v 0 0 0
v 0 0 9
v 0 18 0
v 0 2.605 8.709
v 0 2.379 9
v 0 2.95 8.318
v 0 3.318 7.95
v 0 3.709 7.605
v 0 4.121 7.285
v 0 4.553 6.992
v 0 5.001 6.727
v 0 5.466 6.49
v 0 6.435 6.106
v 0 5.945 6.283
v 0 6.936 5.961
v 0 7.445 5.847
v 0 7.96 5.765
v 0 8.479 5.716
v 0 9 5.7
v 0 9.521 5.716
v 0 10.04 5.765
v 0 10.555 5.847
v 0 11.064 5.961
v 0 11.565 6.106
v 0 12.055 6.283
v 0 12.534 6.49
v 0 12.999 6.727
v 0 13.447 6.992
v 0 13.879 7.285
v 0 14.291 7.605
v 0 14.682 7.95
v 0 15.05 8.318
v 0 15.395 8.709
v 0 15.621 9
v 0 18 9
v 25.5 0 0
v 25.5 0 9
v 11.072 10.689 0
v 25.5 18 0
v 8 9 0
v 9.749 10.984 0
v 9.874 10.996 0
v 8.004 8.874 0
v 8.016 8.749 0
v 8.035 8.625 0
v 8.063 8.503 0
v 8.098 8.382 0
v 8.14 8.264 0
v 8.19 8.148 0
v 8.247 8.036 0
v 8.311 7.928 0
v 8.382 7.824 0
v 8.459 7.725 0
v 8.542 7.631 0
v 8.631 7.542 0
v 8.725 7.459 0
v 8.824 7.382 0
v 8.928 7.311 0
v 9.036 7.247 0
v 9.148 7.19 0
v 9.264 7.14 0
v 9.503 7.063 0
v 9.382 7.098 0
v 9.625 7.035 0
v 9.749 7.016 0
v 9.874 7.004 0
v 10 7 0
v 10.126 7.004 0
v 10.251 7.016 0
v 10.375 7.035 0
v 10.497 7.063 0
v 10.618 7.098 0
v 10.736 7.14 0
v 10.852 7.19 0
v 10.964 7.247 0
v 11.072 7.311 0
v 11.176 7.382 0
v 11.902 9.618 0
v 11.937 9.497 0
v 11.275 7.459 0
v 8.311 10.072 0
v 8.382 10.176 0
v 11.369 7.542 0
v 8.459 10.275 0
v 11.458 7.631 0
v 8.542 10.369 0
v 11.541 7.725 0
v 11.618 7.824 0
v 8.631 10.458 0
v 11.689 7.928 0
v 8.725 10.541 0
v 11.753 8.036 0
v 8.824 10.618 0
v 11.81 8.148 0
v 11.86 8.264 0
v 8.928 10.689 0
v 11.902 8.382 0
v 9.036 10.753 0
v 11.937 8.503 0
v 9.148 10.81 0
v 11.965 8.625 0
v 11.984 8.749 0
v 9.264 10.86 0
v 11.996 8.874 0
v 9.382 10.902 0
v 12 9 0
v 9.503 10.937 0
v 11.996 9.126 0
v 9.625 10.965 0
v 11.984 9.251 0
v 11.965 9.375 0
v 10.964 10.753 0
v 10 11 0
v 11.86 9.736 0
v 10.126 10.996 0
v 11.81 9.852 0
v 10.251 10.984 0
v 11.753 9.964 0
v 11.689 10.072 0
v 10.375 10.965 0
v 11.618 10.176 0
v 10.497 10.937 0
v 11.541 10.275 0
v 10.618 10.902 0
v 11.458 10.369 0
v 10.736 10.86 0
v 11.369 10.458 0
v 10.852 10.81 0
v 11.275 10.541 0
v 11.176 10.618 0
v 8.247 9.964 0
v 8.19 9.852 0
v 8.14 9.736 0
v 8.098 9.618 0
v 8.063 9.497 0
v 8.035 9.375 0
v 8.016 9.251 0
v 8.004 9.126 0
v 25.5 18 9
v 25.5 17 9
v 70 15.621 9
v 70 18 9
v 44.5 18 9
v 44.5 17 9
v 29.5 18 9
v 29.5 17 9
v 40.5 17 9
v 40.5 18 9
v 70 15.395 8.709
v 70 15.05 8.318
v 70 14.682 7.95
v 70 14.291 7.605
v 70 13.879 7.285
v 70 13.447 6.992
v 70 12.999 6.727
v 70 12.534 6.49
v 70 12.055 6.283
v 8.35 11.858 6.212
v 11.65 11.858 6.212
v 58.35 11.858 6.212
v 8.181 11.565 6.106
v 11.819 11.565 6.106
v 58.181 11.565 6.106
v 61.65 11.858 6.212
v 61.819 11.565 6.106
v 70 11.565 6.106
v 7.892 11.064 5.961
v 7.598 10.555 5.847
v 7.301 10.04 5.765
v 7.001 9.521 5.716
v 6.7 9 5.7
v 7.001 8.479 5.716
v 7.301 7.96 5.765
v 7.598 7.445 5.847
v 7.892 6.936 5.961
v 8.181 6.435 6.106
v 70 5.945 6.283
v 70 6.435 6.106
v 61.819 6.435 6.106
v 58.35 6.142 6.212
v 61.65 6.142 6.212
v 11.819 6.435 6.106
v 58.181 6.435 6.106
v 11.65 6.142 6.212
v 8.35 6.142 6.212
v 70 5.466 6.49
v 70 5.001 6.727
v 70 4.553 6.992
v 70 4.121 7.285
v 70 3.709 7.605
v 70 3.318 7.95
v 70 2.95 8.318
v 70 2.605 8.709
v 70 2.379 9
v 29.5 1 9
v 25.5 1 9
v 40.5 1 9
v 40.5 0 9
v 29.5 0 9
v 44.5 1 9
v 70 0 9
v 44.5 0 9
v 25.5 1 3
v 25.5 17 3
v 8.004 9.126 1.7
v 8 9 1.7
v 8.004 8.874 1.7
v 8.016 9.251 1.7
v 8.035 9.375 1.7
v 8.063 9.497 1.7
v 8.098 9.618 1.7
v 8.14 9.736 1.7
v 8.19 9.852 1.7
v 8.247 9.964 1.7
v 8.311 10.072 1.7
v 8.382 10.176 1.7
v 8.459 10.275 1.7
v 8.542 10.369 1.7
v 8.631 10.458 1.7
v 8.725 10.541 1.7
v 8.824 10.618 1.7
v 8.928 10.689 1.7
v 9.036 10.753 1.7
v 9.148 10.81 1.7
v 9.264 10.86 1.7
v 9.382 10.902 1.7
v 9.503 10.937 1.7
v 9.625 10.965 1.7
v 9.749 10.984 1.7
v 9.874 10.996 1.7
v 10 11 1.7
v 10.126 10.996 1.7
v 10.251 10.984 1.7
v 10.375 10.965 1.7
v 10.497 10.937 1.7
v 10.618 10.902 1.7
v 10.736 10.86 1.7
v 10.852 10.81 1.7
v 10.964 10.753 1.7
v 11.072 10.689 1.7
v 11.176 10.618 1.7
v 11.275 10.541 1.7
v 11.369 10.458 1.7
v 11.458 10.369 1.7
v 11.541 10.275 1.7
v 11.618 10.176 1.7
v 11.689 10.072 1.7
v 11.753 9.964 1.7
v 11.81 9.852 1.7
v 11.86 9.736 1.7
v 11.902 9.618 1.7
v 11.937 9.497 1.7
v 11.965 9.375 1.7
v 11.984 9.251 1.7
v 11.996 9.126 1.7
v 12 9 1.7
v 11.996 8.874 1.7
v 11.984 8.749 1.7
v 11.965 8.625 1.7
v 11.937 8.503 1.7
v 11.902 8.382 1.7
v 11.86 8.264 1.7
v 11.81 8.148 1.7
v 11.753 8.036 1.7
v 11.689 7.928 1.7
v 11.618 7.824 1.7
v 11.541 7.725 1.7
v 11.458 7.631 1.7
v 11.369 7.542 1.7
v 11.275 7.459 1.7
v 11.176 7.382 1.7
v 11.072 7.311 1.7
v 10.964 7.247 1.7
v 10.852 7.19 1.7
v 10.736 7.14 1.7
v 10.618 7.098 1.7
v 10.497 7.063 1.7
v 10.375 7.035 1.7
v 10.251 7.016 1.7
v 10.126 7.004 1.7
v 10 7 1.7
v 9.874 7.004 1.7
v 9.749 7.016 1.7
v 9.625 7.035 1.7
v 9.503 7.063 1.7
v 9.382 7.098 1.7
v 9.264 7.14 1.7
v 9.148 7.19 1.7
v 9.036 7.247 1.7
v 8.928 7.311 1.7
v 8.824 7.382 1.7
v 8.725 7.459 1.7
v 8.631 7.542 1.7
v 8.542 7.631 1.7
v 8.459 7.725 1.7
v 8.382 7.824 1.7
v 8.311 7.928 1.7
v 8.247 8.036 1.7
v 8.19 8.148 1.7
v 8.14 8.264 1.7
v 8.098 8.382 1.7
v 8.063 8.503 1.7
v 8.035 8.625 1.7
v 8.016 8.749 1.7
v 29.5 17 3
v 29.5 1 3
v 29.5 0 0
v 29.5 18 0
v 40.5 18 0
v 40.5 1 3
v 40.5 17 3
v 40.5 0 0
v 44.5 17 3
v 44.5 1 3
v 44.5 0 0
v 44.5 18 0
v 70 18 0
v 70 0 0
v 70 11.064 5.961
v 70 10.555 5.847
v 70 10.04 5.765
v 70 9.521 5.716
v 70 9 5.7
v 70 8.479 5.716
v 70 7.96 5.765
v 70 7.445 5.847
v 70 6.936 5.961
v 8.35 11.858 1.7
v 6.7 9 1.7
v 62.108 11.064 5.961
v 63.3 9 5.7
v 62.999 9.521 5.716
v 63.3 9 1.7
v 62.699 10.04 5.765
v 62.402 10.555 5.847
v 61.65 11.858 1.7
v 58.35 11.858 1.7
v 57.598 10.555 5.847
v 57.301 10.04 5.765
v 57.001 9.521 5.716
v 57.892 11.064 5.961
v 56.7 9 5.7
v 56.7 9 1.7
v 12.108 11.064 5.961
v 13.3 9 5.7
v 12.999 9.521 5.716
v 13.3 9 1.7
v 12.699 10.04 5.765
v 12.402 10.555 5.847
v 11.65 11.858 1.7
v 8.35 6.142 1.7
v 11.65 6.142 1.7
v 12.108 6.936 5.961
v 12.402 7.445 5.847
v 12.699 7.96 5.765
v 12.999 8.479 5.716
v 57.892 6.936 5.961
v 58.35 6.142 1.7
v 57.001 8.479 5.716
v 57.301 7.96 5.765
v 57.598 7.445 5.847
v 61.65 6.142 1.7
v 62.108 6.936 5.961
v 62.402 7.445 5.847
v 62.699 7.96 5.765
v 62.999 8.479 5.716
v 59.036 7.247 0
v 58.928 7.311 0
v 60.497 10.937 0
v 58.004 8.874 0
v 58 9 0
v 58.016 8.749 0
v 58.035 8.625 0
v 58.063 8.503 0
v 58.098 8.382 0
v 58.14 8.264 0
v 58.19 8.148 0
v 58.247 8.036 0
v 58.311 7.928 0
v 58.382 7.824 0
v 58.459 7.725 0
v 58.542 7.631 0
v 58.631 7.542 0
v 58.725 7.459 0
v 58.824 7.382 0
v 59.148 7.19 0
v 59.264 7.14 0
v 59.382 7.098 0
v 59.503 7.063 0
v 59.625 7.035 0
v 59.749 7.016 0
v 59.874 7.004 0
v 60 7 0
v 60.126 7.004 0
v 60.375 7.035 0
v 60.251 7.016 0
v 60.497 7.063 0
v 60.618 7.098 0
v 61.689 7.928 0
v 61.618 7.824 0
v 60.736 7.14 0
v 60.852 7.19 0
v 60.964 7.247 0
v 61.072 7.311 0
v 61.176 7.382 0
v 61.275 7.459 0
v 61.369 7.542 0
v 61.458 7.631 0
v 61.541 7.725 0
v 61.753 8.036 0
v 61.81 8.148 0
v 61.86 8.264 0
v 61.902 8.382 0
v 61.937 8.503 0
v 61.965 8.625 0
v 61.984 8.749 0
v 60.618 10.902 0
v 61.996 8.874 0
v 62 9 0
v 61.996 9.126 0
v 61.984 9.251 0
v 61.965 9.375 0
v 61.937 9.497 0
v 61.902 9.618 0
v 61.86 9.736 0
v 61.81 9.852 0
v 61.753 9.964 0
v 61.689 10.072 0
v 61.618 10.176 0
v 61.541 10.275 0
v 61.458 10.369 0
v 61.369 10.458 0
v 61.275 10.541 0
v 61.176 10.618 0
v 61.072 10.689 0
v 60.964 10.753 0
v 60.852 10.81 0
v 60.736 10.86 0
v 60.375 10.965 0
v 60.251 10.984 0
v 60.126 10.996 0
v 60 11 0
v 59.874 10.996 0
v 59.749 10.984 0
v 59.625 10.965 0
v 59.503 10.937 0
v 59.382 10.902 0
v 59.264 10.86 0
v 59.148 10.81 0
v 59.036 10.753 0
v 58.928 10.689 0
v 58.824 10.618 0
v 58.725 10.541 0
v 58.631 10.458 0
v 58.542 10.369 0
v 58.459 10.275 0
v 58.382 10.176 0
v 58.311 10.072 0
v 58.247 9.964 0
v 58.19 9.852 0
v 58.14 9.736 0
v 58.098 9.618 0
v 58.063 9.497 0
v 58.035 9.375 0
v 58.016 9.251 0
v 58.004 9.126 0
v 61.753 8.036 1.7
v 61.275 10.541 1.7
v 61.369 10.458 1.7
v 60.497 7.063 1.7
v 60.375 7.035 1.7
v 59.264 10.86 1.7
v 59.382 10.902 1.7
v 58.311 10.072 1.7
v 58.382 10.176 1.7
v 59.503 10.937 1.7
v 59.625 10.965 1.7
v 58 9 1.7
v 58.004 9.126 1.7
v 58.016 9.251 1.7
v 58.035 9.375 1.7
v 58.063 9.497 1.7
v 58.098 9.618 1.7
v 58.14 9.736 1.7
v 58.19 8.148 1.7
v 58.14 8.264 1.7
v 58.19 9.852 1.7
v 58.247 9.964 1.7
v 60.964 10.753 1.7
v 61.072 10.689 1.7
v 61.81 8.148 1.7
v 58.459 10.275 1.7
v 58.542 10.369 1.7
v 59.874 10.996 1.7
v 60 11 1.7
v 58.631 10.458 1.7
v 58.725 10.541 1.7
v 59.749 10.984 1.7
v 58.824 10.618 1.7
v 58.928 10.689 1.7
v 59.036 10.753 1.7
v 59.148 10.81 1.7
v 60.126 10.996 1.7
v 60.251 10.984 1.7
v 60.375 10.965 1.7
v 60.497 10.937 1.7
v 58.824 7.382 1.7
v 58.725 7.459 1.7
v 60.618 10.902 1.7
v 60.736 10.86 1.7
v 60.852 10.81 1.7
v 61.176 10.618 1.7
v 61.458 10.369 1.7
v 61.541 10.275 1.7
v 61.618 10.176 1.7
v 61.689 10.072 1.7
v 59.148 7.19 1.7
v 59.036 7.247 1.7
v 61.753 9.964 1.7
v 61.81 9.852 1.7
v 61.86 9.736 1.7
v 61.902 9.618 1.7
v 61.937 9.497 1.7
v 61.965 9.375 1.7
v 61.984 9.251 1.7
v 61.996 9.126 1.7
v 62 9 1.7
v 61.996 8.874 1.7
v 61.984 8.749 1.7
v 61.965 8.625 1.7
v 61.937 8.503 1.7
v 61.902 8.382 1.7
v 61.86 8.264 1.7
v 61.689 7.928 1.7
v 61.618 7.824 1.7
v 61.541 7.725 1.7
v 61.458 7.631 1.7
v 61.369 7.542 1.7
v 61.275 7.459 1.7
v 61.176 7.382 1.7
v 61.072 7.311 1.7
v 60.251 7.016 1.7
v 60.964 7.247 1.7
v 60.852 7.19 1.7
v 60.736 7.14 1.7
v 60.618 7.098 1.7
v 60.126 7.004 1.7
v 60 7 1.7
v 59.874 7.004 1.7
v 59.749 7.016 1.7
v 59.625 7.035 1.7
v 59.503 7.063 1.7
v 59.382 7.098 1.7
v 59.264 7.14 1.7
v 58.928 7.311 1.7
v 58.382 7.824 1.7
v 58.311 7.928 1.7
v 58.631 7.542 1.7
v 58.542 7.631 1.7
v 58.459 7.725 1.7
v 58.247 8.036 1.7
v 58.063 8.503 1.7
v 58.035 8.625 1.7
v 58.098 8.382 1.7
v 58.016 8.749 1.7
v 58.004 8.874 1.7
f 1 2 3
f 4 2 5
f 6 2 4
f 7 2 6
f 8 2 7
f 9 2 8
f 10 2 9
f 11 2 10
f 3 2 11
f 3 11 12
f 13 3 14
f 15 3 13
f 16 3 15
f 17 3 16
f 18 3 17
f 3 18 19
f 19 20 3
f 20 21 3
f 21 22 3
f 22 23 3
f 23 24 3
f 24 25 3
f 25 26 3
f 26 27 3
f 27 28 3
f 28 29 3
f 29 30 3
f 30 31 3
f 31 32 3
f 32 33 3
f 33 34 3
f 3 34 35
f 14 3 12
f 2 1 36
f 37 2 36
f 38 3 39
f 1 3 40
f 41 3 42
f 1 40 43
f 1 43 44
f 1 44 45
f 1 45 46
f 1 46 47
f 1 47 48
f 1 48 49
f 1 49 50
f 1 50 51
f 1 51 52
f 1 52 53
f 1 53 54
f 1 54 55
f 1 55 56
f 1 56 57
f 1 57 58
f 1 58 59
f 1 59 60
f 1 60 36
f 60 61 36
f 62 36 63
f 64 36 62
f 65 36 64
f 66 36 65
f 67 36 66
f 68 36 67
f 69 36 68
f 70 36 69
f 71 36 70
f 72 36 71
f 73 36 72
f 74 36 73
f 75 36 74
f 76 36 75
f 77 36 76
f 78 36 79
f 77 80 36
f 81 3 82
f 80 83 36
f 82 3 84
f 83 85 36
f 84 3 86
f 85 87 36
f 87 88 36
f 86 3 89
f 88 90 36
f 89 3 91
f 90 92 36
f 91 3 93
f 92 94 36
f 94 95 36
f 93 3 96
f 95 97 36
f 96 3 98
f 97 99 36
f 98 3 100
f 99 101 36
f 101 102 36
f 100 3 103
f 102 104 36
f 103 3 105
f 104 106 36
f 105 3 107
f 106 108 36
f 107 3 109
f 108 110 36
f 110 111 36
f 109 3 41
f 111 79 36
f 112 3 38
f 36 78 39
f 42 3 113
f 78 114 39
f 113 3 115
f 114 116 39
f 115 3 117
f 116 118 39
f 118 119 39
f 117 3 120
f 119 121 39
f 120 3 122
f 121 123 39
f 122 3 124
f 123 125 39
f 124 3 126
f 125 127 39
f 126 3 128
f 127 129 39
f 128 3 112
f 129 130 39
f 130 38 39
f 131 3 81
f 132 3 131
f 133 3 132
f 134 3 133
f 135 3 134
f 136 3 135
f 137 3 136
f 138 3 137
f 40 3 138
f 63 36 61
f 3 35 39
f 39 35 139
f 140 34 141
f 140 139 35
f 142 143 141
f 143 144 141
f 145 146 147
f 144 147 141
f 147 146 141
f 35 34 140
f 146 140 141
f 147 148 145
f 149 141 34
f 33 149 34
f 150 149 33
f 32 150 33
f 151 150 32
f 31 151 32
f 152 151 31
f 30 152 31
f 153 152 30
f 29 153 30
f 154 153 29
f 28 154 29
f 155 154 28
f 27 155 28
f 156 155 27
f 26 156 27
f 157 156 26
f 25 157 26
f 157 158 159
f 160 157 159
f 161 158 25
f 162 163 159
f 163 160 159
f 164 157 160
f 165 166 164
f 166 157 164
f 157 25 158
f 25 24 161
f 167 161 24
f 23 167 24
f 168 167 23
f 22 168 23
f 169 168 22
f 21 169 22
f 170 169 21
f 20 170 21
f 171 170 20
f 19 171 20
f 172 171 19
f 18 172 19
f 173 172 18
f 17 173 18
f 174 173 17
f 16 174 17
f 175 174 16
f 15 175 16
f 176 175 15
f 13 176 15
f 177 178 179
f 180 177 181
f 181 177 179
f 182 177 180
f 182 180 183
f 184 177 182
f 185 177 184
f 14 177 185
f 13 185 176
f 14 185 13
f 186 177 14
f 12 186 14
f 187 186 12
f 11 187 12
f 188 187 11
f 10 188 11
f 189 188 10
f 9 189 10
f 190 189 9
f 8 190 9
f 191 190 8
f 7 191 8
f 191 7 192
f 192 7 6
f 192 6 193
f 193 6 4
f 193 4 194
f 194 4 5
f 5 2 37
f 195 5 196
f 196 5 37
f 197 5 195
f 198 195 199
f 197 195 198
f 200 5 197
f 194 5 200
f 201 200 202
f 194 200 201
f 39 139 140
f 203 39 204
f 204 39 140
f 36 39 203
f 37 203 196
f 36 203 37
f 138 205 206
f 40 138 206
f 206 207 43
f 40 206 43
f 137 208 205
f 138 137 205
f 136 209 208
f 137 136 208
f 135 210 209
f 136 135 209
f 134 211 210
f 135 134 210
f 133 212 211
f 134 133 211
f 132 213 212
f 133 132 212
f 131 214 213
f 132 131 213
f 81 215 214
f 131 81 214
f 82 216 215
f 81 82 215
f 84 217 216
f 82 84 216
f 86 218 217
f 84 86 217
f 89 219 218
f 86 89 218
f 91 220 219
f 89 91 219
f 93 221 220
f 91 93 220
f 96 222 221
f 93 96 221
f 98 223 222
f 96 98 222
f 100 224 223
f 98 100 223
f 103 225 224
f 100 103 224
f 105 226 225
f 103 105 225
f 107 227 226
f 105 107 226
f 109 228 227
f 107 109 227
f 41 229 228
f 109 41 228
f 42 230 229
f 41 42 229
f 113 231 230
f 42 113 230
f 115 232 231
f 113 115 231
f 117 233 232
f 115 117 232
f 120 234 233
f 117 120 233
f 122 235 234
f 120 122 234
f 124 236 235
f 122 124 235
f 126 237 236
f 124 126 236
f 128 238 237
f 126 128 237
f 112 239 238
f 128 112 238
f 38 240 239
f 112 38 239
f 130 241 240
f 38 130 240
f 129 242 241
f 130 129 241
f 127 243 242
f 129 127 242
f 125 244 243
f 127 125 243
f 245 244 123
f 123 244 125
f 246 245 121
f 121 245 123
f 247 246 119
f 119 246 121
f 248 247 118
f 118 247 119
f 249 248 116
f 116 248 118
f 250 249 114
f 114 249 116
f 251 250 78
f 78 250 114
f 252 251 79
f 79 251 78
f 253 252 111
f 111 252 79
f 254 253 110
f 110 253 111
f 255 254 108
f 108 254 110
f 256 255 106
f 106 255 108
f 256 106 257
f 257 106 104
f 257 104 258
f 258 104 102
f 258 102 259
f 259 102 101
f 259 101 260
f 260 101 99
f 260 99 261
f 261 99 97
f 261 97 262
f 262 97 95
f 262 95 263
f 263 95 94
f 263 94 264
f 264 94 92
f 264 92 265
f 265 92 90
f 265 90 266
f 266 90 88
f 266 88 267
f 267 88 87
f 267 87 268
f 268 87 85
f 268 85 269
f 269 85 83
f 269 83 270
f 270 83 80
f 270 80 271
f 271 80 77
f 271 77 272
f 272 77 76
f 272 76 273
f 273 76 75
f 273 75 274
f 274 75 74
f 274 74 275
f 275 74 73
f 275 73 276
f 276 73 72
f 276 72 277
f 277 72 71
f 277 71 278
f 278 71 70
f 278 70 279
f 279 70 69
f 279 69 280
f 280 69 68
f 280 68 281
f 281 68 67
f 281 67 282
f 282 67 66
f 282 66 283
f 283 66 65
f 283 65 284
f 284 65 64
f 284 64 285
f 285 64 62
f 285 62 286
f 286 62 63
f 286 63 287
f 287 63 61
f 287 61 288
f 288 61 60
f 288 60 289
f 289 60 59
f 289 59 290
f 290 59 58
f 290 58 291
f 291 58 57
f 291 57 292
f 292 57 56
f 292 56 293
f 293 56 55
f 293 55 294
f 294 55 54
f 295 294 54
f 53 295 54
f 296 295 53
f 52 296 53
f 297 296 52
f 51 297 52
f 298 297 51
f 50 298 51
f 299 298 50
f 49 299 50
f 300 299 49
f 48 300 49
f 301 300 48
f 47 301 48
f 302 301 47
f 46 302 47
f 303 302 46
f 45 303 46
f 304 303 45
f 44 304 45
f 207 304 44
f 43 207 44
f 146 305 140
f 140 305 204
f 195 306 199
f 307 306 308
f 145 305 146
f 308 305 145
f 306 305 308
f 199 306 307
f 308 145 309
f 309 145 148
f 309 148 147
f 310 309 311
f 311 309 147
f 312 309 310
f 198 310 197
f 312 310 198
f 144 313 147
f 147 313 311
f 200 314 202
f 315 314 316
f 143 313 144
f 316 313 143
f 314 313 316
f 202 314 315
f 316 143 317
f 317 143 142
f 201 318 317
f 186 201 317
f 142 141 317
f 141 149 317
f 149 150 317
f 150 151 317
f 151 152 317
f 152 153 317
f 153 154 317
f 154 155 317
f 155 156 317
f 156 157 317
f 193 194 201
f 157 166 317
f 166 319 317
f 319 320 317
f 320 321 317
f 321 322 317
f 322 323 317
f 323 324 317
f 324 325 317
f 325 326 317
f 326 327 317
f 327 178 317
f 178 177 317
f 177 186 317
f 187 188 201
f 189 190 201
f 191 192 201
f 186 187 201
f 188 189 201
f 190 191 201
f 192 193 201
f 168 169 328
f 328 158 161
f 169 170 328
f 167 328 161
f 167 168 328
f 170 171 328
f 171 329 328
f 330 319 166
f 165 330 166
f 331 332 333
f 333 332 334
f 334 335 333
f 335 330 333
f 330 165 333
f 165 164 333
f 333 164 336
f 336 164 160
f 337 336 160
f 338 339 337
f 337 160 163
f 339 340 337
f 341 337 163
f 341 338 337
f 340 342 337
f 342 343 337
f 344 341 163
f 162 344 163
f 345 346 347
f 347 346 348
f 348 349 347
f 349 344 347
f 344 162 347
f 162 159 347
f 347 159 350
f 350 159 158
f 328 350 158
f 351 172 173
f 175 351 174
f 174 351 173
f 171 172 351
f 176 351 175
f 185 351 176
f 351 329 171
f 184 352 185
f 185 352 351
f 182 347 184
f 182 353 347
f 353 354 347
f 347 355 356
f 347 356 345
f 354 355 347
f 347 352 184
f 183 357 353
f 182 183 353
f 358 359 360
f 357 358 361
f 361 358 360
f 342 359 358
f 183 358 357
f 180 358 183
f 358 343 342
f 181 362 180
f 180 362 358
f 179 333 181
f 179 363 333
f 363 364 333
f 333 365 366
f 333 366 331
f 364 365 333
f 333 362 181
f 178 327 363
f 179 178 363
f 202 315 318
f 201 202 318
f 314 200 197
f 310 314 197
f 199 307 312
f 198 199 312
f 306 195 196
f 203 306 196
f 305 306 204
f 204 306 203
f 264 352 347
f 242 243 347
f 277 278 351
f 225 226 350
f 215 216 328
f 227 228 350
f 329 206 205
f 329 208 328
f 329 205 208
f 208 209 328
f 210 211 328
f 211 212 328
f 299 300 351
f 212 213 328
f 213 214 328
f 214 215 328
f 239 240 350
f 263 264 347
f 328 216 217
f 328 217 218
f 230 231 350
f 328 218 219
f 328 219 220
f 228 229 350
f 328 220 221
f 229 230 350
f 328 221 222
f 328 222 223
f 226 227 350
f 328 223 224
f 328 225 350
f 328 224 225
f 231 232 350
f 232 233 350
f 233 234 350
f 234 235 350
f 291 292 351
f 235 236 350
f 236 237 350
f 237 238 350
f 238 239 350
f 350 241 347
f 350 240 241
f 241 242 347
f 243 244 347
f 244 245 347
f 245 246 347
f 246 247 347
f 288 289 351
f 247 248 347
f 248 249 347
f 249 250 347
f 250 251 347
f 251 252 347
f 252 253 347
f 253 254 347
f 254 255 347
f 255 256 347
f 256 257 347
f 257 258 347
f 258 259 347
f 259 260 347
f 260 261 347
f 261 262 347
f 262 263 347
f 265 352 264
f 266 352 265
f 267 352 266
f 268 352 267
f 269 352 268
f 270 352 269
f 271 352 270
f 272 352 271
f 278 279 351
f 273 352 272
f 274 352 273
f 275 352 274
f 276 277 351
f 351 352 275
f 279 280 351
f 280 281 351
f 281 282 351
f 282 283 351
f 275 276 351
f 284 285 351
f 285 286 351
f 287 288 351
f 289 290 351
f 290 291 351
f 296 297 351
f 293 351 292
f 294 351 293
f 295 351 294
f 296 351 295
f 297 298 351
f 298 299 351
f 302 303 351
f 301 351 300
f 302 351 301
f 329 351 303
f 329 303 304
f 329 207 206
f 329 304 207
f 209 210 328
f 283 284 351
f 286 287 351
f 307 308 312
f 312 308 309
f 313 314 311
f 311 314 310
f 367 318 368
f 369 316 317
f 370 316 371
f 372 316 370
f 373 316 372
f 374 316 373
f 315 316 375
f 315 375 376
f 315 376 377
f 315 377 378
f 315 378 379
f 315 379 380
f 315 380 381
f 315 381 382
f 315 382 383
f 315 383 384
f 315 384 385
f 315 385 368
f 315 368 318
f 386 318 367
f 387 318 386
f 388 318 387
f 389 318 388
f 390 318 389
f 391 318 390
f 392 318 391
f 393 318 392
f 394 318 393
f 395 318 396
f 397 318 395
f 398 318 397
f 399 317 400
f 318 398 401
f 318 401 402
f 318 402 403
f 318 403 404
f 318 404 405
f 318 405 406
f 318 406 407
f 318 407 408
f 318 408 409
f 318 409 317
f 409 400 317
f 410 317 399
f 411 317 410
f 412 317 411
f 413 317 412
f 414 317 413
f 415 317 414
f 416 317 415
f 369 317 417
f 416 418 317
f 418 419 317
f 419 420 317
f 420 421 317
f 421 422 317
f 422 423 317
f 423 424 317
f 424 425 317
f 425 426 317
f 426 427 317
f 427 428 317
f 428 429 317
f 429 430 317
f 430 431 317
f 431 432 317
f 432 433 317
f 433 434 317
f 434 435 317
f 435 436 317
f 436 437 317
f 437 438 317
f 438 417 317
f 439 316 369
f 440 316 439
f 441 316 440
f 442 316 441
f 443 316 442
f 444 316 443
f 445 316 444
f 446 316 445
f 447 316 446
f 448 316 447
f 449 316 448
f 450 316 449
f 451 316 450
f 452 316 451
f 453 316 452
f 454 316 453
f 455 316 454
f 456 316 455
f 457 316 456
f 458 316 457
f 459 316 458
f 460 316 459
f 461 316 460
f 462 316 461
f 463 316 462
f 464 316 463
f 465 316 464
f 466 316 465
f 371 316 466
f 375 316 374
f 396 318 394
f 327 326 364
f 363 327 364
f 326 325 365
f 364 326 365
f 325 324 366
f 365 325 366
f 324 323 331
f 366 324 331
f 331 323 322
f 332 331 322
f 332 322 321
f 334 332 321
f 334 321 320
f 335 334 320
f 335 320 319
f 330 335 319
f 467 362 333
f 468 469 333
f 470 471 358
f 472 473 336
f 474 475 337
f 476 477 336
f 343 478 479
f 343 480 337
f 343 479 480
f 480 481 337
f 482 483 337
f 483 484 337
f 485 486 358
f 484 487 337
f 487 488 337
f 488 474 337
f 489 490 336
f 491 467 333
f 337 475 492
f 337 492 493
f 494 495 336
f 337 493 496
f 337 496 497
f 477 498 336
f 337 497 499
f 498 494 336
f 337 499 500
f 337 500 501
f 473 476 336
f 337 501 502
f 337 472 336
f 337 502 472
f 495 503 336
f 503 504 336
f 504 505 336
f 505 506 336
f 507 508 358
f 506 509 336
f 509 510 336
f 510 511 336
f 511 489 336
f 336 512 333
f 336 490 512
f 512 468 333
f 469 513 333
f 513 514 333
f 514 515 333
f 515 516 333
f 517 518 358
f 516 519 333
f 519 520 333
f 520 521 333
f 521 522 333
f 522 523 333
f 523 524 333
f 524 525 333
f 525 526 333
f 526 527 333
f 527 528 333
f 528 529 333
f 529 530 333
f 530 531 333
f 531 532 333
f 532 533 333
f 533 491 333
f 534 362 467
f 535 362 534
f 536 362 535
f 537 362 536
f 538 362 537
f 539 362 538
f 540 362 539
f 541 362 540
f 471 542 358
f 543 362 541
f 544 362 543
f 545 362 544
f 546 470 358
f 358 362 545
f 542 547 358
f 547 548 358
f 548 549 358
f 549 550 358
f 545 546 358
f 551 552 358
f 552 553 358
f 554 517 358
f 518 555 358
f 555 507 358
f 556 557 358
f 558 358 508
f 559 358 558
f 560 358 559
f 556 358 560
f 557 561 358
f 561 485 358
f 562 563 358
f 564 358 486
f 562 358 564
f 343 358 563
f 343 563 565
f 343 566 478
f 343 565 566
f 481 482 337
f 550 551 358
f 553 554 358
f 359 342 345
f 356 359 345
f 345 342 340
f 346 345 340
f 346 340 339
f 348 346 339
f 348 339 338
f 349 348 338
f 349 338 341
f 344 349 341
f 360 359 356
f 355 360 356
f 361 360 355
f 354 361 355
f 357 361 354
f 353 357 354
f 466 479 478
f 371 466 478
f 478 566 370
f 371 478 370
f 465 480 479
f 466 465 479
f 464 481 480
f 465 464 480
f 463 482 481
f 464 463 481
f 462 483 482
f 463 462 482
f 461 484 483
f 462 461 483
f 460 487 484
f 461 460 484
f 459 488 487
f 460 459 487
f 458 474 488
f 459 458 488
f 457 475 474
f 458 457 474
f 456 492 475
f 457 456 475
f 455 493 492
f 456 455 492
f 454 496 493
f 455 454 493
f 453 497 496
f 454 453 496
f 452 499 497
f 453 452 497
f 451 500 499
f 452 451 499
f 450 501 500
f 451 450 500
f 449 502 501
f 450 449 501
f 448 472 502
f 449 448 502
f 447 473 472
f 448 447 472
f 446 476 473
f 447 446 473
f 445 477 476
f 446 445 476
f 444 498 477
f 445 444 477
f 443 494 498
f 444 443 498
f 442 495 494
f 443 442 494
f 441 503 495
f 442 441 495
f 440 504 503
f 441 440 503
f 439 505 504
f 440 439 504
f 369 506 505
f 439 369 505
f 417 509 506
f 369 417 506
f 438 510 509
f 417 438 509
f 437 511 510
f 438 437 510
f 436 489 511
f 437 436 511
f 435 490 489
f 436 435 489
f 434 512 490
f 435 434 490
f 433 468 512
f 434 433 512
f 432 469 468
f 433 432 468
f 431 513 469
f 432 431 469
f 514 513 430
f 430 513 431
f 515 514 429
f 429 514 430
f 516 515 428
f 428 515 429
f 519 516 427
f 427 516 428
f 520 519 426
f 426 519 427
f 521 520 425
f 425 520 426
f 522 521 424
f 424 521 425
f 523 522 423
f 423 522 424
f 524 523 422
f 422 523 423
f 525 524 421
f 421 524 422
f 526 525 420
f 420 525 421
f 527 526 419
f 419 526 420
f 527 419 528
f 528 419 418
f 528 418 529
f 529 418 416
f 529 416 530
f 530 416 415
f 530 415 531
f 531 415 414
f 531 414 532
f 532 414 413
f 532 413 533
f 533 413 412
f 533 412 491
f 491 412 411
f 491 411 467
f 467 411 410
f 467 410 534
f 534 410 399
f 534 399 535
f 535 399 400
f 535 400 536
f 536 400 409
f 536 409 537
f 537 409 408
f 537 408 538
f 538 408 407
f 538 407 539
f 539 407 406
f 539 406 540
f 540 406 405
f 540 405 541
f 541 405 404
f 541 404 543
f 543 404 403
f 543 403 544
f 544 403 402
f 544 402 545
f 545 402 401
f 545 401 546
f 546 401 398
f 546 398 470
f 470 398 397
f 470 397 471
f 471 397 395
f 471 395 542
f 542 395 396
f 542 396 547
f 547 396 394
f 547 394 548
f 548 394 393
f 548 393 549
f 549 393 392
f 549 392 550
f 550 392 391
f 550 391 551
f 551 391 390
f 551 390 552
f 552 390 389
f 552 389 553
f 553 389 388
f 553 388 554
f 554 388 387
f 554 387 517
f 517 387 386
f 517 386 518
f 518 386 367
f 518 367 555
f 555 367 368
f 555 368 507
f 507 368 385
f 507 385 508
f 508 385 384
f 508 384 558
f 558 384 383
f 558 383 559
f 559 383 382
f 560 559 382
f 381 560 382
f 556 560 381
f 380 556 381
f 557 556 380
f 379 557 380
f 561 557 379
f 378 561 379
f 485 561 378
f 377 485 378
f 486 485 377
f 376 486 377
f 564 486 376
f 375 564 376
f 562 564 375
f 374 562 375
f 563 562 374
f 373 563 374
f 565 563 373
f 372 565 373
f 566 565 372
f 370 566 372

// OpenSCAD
r_ecrou_m3=3.3;
l_gorge_collier=1;
r_douille=8;
r_trou_m3=2;

module base_piece(){
difference(){
	cube([ 70, 18, 9 ]);
	
	//passages pour colliers droites
	translate([25.5,0,0]){cube([ 4, l_gorge_collier, 9 ]);}
	translate([40.5,0,0]){cube([ 4, l_gorge_collier, 9 ]);}
	
	//passages pour colliers gauches
	translate([25.5,17,0]){cube([ 4, l_gorge_collier, 9 ]);}
	translate([40.5,17,0]){cube([ 4, l_gorge_collier, 9 ]);}

	//passages pour colliers dessous
	translate([25.5,1,0]){cube([ 4, 16, l_gorge_collier*3 ]);}
	translate([40.5,1,0]){cube([ 4, 16, l_gorge_collier*3 ]);}

	//cylindre pour passage douilles
	translate([-1,9,14]){
		rotate([0,90,0])cylinder(h = 80, r = r_douille+0.3, $fn=100);
	}

	//cylindres pour trous vis
	translate([10,9,0]){cylinder(h = 7, r = r_trou_m3, $fn=100);}
	translate([60,9,0]){cylinder(h = 7, r = r_trou_m3, $fn=100);}
	//hexagones pour écrous
	translate([10,9,1.7]){cylinder(h = 7, r = r_ecrou_m3, $fn=6);}
	translate([60,9,1.7]){cylinder(h = 7, r = r_ecrou_m3, $fn=6);}
}
}


base_piece();
